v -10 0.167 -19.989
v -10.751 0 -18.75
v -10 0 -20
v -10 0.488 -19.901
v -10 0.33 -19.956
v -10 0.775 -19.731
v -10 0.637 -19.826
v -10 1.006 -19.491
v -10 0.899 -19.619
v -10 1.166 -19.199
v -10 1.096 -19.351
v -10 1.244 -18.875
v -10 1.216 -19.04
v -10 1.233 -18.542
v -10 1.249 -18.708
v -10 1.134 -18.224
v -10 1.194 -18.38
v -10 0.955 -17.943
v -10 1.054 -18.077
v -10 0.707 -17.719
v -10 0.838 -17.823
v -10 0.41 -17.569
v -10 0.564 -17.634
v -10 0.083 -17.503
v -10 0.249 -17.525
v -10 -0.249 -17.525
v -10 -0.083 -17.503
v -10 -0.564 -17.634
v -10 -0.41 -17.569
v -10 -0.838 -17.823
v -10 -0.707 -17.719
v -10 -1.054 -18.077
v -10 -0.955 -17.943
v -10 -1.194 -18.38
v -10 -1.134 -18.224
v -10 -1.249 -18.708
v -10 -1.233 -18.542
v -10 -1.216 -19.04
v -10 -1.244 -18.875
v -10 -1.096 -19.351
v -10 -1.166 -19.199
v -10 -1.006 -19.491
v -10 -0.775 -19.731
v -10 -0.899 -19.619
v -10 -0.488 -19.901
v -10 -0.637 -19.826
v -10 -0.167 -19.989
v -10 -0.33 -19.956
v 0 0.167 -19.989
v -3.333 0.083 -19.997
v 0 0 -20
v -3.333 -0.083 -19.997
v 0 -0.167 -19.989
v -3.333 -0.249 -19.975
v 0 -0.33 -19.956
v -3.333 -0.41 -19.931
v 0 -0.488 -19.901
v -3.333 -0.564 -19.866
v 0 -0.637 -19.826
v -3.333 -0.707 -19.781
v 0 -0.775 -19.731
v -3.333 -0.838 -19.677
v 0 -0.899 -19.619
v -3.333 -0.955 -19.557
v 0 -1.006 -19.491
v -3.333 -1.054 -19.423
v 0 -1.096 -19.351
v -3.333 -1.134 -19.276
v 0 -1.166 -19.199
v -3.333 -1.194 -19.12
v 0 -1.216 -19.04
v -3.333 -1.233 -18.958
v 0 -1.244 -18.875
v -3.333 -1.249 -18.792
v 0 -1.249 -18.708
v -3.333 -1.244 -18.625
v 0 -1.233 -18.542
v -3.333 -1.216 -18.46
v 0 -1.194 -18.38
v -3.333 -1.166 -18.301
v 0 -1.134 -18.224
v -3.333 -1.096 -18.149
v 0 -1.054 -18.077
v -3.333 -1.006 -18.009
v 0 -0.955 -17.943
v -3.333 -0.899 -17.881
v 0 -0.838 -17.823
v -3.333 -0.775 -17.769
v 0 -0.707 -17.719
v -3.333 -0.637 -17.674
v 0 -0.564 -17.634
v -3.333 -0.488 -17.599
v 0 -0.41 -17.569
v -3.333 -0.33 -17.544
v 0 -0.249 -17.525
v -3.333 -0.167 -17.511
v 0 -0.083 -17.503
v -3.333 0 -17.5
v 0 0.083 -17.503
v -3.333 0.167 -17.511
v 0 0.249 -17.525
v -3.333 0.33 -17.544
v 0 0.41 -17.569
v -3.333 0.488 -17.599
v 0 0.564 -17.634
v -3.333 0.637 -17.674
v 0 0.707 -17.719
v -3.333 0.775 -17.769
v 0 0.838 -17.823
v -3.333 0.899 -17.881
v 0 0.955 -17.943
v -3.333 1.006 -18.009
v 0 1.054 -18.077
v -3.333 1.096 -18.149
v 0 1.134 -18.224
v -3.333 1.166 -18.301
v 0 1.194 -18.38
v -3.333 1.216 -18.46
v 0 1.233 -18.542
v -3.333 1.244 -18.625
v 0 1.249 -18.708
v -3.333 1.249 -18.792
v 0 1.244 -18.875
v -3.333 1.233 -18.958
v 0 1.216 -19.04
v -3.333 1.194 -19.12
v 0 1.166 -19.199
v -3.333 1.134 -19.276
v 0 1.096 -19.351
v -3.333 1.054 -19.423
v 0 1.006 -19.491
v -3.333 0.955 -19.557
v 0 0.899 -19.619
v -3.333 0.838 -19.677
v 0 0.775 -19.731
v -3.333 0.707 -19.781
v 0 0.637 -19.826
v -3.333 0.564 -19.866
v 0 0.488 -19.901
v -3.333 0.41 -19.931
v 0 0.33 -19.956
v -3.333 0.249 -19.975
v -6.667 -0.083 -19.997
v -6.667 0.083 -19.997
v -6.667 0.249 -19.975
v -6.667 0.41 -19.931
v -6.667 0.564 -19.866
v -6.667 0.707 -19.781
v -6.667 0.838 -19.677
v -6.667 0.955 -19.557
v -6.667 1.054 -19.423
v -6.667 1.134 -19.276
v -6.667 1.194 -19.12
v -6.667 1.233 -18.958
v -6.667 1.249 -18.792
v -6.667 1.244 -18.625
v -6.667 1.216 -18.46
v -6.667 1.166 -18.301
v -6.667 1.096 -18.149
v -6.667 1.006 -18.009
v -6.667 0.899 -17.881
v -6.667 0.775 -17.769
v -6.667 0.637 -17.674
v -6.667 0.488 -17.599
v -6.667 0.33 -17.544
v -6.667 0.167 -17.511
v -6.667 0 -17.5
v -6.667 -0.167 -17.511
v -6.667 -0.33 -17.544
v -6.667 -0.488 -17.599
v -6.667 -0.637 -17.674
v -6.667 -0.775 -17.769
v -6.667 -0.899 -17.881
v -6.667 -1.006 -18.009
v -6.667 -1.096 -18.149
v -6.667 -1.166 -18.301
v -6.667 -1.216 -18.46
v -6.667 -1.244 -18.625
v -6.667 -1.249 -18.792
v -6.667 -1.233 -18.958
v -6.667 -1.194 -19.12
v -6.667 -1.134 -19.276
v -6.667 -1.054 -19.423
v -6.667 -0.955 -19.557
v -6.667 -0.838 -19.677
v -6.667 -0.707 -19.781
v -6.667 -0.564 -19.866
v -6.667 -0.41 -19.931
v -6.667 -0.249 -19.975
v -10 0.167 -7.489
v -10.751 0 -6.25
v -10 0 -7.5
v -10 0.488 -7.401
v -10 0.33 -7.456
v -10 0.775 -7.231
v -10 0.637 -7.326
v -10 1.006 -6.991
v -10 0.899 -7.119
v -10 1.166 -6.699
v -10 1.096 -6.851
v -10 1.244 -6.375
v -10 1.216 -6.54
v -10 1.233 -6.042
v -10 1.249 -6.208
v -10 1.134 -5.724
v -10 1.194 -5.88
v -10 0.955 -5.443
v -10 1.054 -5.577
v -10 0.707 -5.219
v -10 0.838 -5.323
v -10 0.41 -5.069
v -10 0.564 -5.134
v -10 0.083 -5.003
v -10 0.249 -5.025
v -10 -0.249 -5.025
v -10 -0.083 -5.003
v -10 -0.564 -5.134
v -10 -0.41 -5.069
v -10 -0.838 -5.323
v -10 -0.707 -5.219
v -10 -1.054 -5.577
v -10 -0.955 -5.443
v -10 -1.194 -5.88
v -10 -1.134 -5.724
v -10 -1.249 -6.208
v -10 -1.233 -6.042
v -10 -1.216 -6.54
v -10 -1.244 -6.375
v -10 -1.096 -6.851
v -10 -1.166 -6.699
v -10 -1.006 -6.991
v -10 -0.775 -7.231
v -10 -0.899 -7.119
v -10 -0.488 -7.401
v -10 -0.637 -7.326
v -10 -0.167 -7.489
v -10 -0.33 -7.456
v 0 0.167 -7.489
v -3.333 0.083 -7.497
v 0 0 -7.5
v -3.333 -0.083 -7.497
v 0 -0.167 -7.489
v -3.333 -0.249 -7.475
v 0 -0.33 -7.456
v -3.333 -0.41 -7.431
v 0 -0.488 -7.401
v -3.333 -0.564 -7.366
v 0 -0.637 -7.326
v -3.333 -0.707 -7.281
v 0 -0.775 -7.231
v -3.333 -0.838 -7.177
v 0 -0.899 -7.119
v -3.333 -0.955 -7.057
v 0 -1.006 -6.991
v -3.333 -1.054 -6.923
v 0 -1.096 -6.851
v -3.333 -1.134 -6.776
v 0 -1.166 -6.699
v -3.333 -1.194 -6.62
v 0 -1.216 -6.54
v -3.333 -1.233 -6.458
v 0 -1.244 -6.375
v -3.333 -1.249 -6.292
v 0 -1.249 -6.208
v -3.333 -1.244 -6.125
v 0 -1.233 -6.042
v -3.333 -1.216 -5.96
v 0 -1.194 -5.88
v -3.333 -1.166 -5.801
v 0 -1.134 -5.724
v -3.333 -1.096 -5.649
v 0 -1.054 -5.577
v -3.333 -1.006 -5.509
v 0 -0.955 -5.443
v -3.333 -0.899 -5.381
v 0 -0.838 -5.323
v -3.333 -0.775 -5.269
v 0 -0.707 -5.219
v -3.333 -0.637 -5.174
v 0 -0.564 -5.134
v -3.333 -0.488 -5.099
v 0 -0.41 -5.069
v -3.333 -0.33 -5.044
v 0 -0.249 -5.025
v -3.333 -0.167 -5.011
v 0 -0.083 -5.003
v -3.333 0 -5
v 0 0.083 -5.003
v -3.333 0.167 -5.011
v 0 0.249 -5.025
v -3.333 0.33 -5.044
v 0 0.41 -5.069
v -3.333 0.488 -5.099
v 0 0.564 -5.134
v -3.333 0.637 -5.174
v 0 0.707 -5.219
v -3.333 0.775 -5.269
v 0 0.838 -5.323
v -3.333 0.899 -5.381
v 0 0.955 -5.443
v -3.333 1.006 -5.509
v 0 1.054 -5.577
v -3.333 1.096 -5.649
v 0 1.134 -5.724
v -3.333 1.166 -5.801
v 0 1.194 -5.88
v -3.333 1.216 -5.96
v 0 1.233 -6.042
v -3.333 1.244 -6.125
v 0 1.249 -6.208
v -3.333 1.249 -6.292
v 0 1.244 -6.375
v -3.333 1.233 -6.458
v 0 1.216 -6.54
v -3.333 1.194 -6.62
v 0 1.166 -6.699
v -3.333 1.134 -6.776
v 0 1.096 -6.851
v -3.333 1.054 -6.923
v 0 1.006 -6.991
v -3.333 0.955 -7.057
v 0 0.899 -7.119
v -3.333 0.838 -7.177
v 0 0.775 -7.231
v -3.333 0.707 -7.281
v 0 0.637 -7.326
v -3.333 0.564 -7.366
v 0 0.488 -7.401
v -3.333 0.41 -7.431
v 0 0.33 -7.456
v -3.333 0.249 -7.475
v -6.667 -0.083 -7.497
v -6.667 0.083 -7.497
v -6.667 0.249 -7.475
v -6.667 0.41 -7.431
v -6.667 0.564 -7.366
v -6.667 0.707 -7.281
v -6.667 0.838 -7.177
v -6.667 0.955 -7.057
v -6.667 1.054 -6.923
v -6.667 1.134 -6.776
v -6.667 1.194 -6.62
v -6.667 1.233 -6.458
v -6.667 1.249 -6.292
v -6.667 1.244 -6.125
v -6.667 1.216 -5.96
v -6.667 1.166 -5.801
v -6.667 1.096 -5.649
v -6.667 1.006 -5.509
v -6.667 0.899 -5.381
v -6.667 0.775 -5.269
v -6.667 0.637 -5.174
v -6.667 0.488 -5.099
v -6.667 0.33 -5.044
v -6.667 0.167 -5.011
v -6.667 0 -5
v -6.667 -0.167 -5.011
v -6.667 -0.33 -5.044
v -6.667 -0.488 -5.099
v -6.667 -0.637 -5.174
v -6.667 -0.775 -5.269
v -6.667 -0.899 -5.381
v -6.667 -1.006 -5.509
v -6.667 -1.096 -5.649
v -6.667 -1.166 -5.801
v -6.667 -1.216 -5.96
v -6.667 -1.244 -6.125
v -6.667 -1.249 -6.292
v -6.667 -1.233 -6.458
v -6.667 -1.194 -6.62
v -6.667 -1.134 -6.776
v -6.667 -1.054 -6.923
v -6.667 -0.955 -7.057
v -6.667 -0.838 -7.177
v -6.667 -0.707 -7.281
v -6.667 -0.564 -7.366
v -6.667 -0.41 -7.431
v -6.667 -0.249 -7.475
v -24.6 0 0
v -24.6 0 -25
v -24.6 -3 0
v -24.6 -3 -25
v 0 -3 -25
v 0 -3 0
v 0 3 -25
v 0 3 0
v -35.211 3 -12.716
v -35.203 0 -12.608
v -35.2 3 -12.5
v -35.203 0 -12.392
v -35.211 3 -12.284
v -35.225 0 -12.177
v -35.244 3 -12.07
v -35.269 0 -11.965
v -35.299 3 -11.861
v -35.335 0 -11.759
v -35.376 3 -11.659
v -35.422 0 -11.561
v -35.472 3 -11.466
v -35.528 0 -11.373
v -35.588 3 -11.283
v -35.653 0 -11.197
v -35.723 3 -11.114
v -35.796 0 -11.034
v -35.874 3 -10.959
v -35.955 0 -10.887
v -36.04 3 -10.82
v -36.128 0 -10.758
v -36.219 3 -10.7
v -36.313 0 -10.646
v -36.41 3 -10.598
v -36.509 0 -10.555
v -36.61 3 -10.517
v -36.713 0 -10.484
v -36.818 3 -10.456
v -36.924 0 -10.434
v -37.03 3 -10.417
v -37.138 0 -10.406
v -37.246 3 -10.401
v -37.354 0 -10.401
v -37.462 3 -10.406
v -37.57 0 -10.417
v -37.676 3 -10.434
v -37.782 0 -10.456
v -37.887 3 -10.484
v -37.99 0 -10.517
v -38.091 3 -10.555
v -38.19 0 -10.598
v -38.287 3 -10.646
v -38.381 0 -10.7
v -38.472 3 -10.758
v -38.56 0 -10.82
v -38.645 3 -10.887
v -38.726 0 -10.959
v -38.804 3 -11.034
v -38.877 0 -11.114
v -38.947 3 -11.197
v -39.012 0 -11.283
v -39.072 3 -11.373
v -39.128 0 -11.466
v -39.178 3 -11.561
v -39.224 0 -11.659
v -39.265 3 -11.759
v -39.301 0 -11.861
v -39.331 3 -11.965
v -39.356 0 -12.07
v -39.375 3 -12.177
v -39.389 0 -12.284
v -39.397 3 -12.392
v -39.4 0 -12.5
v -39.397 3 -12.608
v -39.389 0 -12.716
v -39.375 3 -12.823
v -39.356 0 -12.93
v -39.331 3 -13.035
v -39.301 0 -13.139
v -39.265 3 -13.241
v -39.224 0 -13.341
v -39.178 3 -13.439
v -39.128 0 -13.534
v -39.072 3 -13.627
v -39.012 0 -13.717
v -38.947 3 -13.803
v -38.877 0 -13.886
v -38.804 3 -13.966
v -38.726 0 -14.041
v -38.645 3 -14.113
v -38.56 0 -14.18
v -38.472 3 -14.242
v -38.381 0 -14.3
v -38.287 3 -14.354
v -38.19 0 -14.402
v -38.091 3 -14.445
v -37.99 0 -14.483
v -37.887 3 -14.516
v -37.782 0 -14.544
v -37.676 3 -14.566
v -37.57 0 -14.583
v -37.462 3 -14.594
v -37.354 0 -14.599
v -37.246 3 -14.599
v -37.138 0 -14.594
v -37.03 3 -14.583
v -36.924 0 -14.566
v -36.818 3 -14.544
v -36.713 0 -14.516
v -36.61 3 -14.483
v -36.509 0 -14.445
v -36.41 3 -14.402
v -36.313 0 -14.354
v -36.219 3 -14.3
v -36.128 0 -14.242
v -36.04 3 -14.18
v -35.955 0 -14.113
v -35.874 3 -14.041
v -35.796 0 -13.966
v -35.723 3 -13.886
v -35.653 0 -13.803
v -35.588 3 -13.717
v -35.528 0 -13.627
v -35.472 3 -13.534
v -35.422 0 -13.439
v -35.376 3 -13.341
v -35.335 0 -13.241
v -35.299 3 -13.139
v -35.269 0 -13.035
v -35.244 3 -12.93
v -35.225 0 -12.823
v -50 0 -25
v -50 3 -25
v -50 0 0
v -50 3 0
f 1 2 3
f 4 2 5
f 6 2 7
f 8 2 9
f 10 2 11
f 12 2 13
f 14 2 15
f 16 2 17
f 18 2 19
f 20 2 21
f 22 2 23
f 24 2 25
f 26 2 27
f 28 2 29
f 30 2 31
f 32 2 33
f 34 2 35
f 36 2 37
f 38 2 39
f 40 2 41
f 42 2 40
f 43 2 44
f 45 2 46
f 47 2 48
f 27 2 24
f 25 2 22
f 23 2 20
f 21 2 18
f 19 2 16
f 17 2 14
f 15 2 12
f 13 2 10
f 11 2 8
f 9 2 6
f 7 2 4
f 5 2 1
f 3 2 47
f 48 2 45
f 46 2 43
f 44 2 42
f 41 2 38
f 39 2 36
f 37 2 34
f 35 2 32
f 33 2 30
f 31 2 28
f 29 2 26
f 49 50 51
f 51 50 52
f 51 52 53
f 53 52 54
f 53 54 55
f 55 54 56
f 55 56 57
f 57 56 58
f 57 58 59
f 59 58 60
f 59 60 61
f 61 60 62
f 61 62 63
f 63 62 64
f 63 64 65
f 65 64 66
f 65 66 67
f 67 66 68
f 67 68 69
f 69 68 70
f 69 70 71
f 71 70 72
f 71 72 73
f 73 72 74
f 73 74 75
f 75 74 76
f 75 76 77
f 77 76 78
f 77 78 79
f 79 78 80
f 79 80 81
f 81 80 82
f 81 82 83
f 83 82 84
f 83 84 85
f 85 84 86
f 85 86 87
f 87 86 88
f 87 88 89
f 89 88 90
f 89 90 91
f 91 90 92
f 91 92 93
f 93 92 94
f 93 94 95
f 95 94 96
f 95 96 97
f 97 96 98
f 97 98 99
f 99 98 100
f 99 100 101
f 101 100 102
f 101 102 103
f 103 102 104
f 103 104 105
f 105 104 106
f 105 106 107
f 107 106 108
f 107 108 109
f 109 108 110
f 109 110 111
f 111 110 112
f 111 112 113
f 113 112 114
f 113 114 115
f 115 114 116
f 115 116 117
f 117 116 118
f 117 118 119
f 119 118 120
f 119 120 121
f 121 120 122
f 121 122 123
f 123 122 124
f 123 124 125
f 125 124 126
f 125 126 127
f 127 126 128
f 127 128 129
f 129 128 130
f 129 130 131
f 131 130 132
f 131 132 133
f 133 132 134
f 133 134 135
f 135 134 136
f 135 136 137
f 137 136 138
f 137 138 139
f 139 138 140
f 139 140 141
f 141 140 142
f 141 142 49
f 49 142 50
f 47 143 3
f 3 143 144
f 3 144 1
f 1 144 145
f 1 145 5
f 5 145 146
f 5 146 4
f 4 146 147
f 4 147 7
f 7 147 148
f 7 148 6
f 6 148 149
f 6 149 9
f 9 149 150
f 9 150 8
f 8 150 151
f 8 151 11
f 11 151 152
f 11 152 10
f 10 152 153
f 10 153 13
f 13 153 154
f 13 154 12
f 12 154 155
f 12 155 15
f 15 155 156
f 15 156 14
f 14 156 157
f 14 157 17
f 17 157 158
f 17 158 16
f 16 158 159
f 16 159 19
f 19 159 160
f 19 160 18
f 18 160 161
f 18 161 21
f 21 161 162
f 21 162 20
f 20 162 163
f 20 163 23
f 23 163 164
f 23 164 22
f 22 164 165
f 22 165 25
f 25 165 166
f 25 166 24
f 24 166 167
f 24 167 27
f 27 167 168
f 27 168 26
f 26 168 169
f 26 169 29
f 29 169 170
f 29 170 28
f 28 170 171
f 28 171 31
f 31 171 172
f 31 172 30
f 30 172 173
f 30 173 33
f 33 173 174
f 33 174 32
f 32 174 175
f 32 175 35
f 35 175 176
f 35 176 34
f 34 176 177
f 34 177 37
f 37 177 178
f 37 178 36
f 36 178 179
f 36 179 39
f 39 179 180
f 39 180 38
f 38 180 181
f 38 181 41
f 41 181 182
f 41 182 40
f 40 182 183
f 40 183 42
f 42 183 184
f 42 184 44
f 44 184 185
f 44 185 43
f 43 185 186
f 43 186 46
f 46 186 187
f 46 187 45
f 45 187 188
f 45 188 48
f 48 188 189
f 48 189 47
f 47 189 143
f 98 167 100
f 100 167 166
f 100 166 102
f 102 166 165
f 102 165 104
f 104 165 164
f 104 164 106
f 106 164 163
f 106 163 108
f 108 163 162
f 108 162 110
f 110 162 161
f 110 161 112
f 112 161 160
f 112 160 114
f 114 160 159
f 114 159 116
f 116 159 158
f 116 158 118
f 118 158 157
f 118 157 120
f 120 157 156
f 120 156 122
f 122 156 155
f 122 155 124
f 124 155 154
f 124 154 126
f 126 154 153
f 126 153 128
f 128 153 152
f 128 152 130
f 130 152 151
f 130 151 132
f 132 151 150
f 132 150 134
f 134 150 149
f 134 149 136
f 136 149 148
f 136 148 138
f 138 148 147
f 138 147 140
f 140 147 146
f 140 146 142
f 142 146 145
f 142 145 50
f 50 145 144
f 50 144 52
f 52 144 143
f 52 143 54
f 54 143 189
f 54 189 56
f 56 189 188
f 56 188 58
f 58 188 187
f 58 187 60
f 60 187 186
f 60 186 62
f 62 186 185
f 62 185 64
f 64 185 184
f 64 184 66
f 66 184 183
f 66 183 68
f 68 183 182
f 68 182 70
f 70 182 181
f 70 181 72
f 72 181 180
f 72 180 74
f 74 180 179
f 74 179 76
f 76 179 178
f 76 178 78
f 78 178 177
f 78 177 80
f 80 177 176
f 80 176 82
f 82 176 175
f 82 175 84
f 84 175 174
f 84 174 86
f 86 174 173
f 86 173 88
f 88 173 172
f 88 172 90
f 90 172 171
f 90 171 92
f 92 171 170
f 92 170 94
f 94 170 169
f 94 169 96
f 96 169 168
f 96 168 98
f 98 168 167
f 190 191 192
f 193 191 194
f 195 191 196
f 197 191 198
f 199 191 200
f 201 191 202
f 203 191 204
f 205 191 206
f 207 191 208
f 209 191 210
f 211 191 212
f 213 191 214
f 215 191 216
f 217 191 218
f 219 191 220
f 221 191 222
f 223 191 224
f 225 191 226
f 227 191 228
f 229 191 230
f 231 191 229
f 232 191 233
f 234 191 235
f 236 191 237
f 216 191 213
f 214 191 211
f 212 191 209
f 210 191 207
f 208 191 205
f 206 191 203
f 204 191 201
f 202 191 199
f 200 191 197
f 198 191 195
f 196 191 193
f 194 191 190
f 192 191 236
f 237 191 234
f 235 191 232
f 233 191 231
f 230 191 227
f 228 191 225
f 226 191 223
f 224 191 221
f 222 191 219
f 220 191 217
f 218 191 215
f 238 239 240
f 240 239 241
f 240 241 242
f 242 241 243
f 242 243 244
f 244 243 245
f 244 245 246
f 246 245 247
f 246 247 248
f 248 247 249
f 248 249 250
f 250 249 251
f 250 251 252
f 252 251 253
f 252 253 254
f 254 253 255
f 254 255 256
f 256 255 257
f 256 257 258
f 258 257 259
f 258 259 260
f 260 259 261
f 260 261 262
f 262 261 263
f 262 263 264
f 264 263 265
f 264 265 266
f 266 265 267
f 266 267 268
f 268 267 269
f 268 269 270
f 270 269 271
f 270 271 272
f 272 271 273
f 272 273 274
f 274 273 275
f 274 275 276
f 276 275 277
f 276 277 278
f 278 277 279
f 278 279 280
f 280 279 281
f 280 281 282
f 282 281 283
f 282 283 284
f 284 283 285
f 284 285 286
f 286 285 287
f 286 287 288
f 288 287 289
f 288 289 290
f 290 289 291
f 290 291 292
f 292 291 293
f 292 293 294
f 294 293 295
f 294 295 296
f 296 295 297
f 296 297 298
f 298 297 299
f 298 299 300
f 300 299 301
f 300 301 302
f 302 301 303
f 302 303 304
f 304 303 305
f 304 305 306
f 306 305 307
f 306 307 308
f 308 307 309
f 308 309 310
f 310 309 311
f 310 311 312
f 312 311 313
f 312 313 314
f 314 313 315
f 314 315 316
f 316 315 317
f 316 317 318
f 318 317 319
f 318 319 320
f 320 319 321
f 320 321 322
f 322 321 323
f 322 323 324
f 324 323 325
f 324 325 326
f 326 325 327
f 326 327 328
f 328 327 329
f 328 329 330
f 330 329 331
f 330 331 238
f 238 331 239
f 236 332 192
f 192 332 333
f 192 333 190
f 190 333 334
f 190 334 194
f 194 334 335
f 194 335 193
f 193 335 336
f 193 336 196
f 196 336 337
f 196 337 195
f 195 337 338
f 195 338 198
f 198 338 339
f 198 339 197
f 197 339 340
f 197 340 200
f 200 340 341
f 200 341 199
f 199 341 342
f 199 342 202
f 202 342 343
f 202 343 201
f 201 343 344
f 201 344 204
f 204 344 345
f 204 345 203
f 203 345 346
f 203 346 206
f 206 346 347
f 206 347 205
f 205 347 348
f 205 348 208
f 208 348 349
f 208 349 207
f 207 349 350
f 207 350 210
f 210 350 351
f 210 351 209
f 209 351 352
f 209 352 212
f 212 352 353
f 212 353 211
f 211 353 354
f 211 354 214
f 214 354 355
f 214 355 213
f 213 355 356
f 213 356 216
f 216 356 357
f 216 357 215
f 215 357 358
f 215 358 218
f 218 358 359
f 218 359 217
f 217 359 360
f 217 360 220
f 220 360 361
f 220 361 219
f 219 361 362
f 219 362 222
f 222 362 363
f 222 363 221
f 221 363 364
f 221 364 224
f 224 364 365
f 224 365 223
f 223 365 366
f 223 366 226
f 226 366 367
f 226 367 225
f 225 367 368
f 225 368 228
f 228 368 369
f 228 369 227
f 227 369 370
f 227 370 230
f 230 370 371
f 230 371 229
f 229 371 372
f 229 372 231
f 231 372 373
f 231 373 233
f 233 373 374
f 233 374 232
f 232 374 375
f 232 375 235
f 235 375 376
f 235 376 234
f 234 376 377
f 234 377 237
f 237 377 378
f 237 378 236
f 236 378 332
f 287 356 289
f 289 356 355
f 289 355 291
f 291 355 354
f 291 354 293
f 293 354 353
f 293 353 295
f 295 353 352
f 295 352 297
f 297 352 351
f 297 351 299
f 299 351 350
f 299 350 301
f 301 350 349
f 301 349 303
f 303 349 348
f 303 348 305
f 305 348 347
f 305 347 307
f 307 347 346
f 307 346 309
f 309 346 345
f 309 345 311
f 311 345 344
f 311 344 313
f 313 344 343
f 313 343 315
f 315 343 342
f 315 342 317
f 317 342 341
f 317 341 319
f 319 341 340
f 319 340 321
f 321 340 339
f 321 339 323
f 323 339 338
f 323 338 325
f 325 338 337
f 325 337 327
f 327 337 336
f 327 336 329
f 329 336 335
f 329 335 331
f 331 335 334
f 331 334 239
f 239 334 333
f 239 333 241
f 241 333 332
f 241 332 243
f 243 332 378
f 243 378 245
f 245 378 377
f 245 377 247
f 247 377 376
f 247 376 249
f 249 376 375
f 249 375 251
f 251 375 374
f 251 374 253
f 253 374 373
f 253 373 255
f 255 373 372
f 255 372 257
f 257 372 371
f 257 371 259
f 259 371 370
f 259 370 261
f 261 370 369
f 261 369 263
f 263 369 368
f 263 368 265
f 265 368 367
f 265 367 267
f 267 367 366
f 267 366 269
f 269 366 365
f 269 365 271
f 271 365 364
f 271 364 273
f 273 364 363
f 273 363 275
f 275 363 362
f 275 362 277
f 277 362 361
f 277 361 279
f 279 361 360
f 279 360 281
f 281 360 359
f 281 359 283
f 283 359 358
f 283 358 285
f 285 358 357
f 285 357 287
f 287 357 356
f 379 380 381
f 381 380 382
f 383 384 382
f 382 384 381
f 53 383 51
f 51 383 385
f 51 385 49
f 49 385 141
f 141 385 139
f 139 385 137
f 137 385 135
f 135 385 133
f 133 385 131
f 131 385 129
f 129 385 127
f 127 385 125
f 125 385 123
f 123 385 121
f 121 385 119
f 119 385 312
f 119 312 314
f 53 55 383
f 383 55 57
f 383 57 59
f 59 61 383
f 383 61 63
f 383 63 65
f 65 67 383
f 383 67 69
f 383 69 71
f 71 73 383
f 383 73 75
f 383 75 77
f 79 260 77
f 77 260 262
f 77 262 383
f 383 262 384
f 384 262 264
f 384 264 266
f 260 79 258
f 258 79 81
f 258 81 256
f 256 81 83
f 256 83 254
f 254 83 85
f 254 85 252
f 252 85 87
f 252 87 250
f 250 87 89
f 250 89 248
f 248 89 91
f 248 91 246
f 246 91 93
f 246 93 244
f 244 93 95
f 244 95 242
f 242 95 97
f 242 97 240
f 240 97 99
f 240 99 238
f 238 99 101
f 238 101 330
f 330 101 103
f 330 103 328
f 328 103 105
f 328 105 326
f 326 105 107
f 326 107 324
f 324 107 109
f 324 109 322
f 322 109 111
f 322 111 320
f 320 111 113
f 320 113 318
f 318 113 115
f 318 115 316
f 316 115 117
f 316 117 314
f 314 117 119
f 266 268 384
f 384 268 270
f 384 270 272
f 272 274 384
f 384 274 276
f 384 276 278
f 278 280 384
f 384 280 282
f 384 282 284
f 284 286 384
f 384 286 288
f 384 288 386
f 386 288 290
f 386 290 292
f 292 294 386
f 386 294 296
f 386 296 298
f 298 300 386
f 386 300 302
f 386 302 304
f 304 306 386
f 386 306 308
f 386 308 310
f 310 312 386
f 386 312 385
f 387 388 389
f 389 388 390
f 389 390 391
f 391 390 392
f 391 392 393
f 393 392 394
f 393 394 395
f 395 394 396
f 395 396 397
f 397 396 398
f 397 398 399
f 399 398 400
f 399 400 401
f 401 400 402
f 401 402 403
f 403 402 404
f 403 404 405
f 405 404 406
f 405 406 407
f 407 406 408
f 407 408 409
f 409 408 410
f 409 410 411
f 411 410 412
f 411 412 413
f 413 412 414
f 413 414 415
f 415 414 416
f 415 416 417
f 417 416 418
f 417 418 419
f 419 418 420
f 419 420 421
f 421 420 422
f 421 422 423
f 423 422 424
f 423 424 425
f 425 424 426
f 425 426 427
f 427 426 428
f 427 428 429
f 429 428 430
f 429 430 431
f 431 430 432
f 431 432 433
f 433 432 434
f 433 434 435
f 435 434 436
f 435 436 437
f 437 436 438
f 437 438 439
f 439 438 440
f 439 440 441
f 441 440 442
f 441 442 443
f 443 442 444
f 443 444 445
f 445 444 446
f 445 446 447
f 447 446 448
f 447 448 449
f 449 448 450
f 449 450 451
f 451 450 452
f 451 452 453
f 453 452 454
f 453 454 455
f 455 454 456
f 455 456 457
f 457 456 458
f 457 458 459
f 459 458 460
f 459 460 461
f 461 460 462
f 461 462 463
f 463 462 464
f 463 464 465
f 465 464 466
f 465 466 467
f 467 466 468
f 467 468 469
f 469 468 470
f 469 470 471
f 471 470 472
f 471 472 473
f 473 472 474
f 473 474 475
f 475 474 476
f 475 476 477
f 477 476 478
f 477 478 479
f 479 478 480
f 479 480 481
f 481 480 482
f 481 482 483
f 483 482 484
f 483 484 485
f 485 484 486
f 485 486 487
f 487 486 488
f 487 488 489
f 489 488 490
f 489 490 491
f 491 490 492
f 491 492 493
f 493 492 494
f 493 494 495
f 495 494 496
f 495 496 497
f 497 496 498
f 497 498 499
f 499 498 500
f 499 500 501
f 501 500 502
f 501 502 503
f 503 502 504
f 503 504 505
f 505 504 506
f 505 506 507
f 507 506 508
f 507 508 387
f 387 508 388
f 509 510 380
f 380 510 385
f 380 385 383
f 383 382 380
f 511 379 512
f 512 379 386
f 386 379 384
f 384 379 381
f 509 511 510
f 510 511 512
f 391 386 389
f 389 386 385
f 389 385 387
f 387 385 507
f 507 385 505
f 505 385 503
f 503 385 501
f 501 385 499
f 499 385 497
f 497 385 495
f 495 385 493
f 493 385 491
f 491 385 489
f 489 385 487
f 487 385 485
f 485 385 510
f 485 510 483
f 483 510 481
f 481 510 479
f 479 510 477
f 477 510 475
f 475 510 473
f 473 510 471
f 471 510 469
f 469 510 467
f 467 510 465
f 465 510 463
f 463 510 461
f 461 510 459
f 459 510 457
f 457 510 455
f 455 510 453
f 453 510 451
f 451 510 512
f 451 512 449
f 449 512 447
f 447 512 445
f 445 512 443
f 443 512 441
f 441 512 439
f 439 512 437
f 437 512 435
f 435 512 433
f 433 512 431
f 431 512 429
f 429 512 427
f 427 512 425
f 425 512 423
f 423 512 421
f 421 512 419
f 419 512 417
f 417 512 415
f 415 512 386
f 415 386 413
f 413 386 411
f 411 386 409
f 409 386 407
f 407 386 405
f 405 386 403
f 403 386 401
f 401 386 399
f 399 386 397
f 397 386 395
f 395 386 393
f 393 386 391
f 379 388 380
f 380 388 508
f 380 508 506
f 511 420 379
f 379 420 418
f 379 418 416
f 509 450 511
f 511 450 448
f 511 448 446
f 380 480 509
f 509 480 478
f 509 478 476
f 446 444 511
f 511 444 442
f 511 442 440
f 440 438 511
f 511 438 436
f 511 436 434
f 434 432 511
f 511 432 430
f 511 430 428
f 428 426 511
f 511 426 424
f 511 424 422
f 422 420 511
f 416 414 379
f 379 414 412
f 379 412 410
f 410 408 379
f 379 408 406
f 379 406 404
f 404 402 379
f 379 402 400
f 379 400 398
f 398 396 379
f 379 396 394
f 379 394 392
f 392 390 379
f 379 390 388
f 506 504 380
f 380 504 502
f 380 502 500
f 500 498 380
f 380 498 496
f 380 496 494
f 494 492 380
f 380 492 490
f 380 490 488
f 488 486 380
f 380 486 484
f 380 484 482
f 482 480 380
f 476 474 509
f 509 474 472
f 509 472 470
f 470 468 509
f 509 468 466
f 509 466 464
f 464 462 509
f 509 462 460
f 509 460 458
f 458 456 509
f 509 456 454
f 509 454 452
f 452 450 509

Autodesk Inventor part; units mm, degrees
ref_plane "YZ Plane" through (0, 0, 0) normal (1, 0, 0) x (0, 1, 0)
ref_plane "XZ Plane" through (0, 0, 0) normal (0, 1, 0) x (-1, 0, 0)
ref_plane "XY Plane" through (0, 0, 0) normal (0, 0, 1) x (1, 0, 0)
sketch "Sketch1" plane through (0, 0, 0) normal (0, 1, 0) x (-1, 0, 0)
  line L0 (0, 0) -> (24.6, 0)
  line L1 (50, 0) -> (50, -25)
  line L2 (50, -25) -> (24.6, -25)
  line L3 (0, -25) -> (0, 0)
  line L4 (50, 0) -> (24.6, 0) construction
  line L5 (24.6, 0) -> (24.6, -25)
  line L6 (24.6, -25) -> (50, -25) construction
  line L7 (50, -25) -> (50, 0) construction
  line L8 (24.6, 0) -> (50, 0)
  line L9 (24.6, -25) -> (0, -25)
  point P0 (37.3, -12.5)
  dimension "d0" = 50
  dimension "d1" = 25
  dimension "d2" = 25.4
extrude "Extrusion1" add sketch "Sketch1" along normal blind 3 contours L8 L1 L2 L5
hole "Hole1" at (-37.3, 0, -12.5) direction (0, 1, 0) diameter 4.2 end through all
extrude "Extrusion2" add sketch "Sketch1" along normal blind 3 contours L0 L5 L9 L3
extrude "Extrusion3" add sketch "Sketch1" against normal blind 3 contours L0 L5 L9 L3
sketch "Sketch2" plane through (0, 3, 0) normal (1, 0, 0) x (0, 0, -1)
  line L0 (12.5, -0.947) -> (12.5, -4.9651)
  line L1 (25, -3) -> (0, -3) projected
  point P0 (6.25, -3)
  point P1 (18.75, -3)
hole "Hole2" at (0, 0, -18.75) at (0, 0, -6.25) direction (-1, 0, 0) diameter 2.5 depth 10 tip angle 118
properties part number "Metal_mount_vertical_v1"
